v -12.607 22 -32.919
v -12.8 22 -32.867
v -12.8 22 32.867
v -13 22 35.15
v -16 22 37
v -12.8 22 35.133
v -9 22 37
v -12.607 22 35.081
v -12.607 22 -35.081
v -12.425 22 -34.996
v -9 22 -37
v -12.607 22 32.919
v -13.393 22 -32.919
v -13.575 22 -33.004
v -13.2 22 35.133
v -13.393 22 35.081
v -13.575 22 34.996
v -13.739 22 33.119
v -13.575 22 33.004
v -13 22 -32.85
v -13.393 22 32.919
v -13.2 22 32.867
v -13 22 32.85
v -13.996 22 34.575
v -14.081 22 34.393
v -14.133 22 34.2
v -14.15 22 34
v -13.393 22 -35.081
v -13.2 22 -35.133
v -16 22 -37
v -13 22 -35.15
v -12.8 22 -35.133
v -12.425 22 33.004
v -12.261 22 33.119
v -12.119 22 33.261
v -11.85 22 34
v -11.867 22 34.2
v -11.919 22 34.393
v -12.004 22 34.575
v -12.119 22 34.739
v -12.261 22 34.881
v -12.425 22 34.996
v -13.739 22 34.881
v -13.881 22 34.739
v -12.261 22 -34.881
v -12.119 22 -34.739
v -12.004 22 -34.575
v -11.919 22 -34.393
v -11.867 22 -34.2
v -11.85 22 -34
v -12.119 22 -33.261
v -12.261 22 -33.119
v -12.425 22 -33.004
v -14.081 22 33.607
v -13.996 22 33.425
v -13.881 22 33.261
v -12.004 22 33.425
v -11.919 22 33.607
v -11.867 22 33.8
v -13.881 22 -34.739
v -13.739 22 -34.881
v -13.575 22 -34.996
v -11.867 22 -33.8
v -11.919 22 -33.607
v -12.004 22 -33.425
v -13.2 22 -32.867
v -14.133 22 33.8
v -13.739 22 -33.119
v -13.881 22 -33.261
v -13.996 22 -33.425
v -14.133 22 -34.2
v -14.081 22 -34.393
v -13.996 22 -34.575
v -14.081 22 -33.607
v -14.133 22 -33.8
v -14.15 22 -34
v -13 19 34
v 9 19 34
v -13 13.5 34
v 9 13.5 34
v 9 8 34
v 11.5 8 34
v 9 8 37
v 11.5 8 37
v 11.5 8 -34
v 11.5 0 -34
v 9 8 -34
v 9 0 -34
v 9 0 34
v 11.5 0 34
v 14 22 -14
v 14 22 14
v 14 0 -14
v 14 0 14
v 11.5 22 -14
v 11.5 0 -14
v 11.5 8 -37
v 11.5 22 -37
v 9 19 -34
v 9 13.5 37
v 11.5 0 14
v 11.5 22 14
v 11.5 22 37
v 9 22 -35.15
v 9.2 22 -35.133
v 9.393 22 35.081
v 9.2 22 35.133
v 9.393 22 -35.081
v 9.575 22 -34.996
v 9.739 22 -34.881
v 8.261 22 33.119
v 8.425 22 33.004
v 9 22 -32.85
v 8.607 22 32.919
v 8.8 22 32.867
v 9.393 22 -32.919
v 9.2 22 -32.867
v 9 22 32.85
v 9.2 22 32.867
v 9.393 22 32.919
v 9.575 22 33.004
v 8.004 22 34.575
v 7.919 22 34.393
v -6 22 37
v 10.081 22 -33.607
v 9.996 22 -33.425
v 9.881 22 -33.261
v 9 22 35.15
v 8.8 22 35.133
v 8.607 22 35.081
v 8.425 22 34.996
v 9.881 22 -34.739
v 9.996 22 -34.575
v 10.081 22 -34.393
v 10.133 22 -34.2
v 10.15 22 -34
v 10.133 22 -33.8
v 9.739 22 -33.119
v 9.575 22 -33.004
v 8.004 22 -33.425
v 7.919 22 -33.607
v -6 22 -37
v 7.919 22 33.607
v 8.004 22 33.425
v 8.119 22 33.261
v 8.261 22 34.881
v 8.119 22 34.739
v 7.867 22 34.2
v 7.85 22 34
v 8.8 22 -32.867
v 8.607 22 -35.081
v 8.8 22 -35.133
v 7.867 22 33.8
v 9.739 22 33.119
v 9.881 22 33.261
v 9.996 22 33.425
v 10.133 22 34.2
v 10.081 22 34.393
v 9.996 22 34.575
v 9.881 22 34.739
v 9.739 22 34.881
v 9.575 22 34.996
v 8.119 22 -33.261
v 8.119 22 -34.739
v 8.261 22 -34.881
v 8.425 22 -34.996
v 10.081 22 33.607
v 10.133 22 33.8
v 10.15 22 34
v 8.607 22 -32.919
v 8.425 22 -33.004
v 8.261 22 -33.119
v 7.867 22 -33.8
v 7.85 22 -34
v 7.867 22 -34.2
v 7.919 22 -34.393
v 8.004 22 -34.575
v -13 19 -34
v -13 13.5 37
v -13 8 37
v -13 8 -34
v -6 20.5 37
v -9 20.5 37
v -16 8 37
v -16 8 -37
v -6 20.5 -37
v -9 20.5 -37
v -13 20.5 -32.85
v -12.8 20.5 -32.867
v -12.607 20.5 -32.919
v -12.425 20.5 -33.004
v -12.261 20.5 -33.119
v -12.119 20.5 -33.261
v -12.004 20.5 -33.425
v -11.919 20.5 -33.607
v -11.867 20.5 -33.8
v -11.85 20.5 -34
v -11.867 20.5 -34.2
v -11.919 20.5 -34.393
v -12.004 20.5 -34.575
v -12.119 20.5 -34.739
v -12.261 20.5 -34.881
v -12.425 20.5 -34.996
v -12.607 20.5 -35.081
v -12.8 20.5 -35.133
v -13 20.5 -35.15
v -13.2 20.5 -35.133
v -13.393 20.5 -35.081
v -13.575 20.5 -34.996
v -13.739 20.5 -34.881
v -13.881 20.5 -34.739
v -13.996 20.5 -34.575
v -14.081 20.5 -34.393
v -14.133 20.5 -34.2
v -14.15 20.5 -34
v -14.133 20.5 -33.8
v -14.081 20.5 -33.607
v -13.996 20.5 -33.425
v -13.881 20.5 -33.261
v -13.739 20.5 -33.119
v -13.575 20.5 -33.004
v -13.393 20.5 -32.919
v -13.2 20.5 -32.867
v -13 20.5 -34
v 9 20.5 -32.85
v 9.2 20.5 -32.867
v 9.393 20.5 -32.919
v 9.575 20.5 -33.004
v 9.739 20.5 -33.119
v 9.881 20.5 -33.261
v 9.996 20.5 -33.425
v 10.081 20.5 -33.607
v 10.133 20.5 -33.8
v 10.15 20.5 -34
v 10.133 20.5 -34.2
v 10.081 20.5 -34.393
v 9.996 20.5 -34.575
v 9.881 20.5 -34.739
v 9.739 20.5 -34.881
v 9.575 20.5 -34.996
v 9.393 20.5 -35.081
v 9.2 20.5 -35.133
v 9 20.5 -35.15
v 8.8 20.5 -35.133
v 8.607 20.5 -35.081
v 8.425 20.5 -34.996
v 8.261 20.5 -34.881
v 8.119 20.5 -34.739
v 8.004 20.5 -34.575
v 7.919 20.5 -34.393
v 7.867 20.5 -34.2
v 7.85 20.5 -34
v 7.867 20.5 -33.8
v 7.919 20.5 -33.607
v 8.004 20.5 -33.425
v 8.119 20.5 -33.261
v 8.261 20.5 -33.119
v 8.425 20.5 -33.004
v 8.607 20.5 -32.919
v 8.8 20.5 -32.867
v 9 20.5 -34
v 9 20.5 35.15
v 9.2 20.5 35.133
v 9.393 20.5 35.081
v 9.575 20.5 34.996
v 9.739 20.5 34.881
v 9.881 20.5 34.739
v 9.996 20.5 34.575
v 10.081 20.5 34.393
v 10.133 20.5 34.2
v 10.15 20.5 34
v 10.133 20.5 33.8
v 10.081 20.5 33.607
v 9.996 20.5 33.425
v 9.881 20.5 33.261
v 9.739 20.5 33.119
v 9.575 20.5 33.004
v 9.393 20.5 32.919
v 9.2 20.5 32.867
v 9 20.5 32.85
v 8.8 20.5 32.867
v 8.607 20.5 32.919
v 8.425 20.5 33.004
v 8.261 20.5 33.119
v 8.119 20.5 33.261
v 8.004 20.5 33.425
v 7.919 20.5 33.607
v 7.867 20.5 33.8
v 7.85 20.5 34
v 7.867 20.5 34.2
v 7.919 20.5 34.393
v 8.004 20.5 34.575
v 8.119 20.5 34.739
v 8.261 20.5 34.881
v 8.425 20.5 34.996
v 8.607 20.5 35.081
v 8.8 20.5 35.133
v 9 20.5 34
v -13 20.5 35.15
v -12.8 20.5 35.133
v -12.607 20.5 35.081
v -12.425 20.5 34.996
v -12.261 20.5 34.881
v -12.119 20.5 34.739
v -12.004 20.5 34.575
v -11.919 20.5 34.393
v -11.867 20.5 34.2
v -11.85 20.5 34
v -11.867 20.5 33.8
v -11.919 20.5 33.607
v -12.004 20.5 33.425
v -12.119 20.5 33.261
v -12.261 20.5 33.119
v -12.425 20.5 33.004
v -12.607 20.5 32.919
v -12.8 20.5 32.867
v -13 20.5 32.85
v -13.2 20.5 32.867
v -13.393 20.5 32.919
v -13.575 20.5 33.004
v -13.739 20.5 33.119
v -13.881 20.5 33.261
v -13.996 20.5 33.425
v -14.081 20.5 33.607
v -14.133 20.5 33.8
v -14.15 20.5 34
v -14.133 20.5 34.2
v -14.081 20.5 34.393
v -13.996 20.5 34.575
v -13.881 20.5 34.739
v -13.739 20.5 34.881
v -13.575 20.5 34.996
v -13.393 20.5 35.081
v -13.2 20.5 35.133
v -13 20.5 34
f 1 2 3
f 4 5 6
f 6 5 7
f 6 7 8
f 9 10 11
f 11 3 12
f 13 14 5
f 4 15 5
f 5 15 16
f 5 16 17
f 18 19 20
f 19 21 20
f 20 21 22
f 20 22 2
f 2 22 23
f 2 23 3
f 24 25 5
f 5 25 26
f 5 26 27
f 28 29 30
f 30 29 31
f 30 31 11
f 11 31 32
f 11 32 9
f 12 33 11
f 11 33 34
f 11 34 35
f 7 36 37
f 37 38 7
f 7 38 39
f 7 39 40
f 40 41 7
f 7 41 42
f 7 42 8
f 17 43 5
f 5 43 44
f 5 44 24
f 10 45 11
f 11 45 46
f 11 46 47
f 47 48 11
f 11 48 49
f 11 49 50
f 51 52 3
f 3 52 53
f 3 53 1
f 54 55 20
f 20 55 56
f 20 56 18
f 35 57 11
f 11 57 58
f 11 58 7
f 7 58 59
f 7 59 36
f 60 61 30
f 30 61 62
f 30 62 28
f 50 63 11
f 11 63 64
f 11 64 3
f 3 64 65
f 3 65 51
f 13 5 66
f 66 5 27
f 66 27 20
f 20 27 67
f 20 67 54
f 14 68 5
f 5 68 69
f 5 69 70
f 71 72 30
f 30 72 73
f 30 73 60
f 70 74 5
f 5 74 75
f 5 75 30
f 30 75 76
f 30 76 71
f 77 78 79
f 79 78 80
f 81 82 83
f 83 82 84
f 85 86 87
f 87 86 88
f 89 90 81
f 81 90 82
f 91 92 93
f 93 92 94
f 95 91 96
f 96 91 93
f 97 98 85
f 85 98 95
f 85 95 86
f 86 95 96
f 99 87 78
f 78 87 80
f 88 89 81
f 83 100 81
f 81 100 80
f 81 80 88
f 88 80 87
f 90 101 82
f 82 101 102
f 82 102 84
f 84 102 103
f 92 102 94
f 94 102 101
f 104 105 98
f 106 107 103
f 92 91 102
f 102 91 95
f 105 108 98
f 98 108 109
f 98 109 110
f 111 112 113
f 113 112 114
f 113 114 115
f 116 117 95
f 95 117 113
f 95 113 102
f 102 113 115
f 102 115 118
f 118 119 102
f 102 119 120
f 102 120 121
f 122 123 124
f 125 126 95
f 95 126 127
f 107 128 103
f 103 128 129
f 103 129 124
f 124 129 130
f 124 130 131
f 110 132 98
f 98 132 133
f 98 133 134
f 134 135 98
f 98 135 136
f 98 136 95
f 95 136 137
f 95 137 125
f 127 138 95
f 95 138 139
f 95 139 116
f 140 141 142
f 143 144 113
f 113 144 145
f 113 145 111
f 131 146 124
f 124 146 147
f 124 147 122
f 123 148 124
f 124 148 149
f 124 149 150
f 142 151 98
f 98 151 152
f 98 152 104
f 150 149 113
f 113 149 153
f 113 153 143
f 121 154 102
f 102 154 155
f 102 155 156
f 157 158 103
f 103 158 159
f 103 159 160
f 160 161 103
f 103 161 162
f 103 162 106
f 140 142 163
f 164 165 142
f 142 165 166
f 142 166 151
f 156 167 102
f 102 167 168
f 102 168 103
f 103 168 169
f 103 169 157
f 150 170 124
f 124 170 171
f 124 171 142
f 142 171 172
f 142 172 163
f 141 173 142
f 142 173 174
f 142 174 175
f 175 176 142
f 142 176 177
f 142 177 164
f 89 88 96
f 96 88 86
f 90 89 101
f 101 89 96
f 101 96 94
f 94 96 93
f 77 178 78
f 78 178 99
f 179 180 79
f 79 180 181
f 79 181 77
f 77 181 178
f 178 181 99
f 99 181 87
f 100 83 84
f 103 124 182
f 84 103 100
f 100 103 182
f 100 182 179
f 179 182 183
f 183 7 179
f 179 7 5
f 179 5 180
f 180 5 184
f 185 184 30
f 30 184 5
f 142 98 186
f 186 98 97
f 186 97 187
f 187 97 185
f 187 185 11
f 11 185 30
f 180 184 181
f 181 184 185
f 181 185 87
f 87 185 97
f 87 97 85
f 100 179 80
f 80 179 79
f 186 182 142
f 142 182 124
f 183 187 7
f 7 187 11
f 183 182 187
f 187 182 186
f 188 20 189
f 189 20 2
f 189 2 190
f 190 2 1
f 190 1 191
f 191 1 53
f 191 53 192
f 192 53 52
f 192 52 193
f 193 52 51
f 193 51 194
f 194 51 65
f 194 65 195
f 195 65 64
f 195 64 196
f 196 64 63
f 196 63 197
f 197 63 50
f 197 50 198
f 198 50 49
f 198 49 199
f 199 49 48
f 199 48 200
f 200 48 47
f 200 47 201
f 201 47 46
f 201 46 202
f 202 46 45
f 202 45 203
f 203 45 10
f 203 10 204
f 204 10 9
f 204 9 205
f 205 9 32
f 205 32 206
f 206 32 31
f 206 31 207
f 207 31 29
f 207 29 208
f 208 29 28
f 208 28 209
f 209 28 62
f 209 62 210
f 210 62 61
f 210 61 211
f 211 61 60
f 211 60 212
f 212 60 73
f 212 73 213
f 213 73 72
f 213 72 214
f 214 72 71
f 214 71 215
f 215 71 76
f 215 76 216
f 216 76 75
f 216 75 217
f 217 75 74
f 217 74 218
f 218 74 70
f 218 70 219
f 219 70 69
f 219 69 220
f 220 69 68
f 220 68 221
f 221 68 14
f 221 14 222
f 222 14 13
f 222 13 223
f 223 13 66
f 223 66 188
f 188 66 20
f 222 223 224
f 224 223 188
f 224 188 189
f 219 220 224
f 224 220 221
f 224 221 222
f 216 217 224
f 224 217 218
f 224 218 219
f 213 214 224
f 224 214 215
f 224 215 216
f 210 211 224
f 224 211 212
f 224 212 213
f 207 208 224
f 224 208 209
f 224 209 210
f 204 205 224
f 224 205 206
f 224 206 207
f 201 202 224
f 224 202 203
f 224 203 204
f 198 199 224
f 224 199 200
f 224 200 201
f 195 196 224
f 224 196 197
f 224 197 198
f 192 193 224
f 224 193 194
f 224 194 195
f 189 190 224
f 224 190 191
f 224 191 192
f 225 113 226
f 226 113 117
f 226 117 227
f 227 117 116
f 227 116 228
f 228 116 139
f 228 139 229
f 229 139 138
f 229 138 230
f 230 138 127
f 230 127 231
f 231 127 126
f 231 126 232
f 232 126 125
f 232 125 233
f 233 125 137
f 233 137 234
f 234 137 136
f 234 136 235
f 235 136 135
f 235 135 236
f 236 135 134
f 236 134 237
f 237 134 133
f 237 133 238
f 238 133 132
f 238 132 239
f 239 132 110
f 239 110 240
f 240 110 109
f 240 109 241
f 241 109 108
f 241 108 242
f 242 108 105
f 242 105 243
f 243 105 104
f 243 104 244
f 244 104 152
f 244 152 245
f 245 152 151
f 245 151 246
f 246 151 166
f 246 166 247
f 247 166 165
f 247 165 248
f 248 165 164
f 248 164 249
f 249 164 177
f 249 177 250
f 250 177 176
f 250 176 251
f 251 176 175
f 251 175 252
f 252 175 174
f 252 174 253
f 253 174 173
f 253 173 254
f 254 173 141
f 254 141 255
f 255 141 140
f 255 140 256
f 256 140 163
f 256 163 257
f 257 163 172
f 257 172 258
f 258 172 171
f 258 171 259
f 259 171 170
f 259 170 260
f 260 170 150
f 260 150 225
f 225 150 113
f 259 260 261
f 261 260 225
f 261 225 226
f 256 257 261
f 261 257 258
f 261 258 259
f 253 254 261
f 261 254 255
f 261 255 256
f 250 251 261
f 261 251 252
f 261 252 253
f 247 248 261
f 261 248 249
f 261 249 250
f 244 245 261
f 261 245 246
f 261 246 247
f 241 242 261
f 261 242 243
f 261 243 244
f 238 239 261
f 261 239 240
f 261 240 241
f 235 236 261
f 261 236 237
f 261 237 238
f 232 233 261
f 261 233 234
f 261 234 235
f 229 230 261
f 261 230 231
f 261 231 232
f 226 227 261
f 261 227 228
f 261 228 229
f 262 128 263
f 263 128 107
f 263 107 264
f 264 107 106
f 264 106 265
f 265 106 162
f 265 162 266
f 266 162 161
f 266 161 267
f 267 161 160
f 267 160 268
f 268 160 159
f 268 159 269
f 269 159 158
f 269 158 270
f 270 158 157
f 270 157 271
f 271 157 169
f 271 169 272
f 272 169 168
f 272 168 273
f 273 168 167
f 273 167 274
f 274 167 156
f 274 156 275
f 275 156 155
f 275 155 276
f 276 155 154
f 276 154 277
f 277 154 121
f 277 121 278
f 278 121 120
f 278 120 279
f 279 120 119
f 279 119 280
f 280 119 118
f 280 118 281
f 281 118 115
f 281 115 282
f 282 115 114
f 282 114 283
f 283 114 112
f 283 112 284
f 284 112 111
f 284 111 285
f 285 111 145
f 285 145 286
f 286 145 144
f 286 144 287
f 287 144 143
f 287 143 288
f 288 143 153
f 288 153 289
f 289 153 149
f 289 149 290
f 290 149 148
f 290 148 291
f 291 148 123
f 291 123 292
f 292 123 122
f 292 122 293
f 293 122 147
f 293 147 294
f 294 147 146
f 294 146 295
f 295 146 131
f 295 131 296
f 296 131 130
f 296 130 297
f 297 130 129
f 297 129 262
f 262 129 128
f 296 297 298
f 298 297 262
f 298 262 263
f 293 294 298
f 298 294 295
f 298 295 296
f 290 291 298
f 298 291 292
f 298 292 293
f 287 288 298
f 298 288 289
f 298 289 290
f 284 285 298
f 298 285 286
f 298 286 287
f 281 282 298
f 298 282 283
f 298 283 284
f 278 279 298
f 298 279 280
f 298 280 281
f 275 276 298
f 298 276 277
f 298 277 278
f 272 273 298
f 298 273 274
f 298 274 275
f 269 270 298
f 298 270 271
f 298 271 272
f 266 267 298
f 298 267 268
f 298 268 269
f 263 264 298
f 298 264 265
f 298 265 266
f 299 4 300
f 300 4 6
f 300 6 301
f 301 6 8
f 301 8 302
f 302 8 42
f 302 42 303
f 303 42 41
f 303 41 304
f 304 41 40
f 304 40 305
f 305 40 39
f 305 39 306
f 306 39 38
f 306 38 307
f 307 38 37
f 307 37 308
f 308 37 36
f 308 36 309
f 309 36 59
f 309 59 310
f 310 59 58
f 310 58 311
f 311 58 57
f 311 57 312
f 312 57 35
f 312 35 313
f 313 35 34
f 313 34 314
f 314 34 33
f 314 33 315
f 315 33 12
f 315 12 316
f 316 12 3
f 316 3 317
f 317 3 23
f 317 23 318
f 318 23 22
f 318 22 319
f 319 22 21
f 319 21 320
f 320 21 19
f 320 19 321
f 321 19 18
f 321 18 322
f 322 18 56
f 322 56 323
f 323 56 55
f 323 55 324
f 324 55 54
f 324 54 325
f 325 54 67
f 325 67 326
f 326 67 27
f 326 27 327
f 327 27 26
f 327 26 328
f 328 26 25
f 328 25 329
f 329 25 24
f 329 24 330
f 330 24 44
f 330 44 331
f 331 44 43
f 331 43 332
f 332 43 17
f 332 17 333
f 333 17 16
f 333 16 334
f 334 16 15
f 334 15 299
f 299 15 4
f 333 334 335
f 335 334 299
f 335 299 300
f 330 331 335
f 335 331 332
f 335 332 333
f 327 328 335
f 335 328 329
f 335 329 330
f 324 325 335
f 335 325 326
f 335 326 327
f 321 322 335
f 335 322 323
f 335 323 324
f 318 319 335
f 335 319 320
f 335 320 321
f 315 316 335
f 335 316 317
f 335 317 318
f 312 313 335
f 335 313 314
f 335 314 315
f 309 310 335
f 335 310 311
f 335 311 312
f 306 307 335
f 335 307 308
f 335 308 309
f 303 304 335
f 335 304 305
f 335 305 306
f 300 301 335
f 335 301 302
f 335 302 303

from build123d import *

# Parameters (mm, degrees)
BOSS_EXTRUDE1_DEPTH = 22
SKETCH2_W           = 68
SKETCH2_H           = 3
BOSS_EXTRUDE2_DEPTH = 22
BOSS_EXTRUDE3_DEPTH = 14
CUT_EXTRUDE1_DEPTH  = 10
SKETCH5_R           = 1.15
SKETCH5_W           = 3
SKETCH5_H           = 74
CUT_EXTRUDE2_DEPTH  = 1.5


with BuildPart() as part:
    # Sketch1 → Boss-Extrude1 (new body)
    with BuildSketch(Plane(origin=(0, 0, 0), x_dir=(1, 0, 0), z_dir=(0, 1, 0))):
        Polygon((14, 14), (11.5, 14), (11.5, 34), (9, 34), (9, -34), (11.5, -34), (11.5, -14), (14, -14), align=None)
    extrude(amount=BOSS_EXTRUDE1_DEPTH)

    # Sketch2 → Boss-Extrude2 (add)
    with BuildSketch(Plane.ZY.offset(-9)):
        with Locations((0, 20.5)):
            Rectangle(SKETCH2_W, SKETCH2_H)
    extrude(amount=BOSS_EXTRUDE2_DEPTH)

    # Sketch3 → Boss-Extrude3 (add)
    with BuildSketch(Plane(origin=(0, 22, 0), x_dir=(1, 0, 0), z_dir=(0, 1, 0))):
        Polygon((-13, 34), (11.5, 34), (11.5, 37), (-16, 37), (-16, -37), (11.5, -37), (11.5, -34), (-13, -34), align=None)
    extrude(amount=-BOSS_EXTRUDE3_DEPTH)

    # Sketch4 → Cut-Extrude1 (cut)
    with BuildSketch(Plane.XY.offset(37)):
        Polygon((7, 13.5), (-11, 13.5), (-13, 13.5), (-13, 8), (-11, 8), (7, 8), (9, 8), (9, 13.5), align=None)
    extrude(amount=-CUT_EXTRUDE1_DEPTH, mode=Mode.SUBTRACT)

    # Sketch5 → Cut-Extrude2 (cut)
    with BuildSketch(Plane(origin=(0, 22, 0), x_dir=(1, 0, 0), z_dir=(0, 1, 0))):
        with Locations(Location((9, 34, 0), (0, 0, 270))):
            Circle(SKETCH5_R)
        with Locations(Location((9, -34, 0), (0, 0, 270))):
            Circle(SKETCH5_R)
        with Locations(Location((-13, -34, 0), (0, 0, 270))):
            Circle(SKETCH5_R)
        with Locations(Location((-13, 34, 0), (0, 0, 270))):
            Circle(SKETCH5_R)
        with Locations((-7.5, 0)):
            Rectangle(SKETCH5_W, SKETCH5_H)
    extrude(amount=-CUT_EXTRUDE2_DEPTH, mode=Mode.SUBTRACT)


solid = part.part
